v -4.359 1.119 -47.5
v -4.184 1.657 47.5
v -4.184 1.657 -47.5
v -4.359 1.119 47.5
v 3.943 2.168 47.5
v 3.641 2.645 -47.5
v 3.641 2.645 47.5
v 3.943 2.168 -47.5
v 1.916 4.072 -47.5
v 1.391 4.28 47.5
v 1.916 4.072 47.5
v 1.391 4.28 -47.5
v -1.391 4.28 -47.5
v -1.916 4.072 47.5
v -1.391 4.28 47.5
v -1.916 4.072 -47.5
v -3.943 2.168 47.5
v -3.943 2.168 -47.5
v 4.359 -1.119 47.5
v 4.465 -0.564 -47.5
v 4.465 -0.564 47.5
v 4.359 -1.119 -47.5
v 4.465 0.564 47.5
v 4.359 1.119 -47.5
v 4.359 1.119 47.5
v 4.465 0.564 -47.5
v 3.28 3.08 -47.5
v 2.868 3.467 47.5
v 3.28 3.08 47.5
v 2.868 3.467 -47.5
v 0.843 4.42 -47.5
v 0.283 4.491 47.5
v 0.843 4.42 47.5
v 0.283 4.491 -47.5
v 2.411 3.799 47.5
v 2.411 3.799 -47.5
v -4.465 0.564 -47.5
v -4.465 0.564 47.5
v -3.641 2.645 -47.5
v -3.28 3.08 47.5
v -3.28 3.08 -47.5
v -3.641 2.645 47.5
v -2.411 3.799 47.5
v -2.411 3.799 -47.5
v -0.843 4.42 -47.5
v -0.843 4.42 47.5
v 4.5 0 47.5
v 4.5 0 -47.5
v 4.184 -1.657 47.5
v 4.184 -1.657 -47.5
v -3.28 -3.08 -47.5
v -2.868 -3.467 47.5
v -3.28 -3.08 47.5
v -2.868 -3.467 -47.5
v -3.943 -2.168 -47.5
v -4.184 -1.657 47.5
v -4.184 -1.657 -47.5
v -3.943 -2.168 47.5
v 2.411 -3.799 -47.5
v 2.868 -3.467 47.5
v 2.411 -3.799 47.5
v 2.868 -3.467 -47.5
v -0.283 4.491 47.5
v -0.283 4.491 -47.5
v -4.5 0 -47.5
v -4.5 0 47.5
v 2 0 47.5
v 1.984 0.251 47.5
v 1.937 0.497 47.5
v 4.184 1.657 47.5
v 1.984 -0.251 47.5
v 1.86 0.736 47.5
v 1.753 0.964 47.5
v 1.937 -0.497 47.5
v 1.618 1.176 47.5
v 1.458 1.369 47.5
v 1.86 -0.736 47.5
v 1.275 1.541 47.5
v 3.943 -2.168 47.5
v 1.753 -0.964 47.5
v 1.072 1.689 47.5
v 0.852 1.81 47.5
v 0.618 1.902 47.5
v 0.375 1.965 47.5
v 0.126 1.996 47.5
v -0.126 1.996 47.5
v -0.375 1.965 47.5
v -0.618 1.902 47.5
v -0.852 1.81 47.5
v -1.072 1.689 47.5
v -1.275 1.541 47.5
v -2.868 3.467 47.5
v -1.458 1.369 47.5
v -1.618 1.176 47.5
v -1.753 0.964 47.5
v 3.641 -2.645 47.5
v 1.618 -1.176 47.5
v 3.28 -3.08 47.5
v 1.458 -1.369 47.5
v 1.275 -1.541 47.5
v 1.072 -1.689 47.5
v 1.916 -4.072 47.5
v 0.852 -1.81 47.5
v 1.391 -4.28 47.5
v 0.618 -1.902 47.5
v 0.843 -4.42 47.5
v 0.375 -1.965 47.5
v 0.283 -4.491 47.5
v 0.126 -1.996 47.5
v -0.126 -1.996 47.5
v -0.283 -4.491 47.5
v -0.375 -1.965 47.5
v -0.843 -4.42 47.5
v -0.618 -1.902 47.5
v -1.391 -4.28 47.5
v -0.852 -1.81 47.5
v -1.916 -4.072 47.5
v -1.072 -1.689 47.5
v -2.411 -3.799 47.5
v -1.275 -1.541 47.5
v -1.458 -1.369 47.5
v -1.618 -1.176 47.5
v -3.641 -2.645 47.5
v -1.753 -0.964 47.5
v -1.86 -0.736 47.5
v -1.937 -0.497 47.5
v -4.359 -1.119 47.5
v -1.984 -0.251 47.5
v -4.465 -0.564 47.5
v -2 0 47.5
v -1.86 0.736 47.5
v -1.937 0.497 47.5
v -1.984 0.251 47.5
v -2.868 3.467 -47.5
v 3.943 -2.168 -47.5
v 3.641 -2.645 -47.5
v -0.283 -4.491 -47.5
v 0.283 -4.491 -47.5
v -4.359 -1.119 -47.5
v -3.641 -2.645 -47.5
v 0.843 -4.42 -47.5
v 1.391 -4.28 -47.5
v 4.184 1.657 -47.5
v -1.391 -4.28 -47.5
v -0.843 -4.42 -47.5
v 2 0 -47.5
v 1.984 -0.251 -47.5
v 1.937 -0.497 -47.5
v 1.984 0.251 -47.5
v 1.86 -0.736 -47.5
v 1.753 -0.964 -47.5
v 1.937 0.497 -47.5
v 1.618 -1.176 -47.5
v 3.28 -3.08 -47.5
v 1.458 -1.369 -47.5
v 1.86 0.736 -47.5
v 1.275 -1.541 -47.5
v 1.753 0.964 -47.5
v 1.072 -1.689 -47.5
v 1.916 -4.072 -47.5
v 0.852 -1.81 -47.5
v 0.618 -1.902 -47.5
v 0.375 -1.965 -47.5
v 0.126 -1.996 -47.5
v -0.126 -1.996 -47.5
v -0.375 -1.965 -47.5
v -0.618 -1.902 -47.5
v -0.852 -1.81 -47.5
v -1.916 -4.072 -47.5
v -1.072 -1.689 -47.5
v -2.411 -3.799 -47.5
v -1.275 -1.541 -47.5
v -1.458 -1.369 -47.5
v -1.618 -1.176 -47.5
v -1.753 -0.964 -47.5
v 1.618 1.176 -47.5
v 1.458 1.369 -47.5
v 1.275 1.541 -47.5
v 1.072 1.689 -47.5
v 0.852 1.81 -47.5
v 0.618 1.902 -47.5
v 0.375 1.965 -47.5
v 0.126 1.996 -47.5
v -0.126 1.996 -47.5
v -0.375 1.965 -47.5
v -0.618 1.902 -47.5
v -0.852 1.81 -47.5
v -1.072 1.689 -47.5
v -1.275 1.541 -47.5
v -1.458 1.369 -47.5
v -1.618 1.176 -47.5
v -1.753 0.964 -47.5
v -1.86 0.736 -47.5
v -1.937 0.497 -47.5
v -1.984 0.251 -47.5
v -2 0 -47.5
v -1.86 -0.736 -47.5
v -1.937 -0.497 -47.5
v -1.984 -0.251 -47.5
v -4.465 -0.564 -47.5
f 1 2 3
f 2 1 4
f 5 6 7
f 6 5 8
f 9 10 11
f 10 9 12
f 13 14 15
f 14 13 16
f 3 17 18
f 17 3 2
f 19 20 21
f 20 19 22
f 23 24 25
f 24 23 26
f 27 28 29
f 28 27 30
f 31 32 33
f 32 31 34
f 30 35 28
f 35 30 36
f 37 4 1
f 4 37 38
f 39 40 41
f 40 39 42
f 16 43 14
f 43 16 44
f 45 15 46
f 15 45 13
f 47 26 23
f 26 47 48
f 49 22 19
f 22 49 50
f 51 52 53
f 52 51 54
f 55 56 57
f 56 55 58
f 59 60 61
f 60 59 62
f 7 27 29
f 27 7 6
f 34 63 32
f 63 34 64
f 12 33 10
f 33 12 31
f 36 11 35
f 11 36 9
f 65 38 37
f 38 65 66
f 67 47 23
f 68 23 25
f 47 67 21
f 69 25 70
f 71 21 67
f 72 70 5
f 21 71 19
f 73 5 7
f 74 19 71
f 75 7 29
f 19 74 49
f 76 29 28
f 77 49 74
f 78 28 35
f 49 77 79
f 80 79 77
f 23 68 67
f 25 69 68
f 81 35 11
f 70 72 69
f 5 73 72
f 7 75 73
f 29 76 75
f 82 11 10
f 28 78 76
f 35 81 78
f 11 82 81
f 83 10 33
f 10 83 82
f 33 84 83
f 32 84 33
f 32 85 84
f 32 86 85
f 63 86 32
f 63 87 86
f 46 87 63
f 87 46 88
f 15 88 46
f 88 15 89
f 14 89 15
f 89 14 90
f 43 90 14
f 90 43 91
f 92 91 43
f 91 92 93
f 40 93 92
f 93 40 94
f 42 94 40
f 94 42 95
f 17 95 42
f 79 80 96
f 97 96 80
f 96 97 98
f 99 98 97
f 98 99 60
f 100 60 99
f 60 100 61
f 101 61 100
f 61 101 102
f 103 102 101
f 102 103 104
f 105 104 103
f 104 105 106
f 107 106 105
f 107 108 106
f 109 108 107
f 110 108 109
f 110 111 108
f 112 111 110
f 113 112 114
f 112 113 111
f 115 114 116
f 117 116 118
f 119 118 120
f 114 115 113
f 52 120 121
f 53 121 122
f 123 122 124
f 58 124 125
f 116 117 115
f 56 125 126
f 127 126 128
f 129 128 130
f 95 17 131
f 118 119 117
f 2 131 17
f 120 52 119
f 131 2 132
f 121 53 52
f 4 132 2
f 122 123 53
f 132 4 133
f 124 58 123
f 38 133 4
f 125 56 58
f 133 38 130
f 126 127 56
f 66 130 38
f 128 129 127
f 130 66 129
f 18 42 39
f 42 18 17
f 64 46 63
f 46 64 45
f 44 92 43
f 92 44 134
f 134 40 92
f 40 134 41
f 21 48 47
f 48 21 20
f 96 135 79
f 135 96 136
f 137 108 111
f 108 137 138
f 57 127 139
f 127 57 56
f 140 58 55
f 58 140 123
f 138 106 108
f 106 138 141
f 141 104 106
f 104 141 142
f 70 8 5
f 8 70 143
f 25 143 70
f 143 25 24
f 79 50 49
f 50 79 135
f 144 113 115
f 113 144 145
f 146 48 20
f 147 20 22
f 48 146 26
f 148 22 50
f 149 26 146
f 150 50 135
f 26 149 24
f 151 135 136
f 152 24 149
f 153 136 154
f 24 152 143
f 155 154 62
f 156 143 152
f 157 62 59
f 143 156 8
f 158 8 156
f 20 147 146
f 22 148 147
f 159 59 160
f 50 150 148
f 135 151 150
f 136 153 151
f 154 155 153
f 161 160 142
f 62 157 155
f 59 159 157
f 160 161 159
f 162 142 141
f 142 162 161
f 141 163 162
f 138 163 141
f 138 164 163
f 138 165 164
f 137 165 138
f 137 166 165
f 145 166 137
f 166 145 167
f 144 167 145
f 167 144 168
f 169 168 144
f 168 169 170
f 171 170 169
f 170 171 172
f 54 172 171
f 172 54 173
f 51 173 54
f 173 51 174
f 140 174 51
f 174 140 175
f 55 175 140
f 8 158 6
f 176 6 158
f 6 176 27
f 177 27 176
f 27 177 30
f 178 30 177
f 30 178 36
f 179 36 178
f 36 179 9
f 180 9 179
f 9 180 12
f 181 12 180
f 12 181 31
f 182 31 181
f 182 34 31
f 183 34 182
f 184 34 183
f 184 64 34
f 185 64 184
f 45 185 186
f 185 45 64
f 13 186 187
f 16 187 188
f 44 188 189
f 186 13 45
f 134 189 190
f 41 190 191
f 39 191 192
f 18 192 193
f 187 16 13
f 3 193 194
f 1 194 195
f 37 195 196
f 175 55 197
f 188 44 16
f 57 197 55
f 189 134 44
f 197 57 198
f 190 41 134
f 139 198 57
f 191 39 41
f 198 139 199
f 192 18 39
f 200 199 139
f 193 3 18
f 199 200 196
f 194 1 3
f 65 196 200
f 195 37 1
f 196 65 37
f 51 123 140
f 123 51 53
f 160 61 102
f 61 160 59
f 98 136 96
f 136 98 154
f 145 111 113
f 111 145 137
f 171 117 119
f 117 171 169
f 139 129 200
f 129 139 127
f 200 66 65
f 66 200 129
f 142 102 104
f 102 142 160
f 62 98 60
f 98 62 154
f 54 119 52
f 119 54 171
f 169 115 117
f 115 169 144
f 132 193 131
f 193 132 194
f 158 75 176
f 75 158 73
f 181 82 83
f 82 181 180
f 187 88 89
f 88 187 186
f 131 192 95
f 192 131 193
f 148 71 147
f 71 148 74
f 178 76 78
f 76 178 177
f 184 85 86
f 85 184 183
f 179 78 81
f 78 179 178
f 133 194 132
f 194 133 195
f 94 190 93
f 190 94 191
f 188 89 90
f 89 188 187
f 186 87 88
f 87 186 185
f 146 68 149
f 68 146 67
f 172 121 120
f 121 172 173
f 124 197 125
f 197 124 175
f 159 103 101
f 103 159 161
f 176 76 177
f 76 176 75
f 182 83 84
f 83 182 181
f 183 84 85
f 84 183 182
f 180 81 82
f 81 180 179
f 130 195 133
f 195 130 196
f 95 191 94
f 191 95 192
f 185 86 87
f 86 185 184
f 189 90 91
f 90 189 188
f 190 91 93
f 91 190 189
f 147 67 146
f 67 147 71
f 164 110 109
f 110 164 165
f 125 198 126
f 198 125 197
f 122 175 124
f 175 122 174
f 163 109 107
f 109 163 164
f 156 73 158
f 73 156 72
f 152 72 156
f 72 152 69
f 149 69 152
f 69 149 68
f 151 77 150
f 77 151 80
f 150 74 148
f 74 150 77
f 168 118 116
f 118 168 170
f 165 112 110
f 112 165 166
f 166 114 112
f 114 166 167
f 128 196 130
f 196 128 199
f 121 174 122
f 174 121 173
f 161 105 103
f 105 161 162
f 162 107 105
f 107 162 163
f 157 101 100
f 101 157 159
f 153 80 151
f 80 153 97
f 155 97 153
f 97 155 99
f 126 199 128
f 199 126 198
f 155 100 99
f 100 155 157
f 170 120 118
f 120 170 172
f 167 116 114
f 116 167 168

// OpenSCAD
$fn = 50;


difference() {
	union() {
		translate(v = [0, 0, -47.5000000000]) {
			cylinder(h = 95, r = 4.5000000000);
		}
	}
	union() {
		translate(v = [0, 0, -100.0000000000]) {
			cylinder(h = 200, r = 2);
		}
	}
}
